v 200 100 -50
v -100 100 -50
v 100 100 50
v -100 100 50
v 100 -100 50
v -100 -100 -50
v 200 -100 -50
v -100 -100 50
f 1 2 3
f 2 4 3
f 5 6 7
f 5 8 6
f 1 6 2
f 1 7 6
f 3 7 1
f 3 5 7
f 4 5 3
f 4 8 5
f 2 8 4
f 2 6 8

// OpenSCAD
    translate([100, 100, -50])
    rotate([90, 0, 0])
    linear_extrude(200) {
        polygon(points=[[0,0],[100,0],[0,100]],convexity=2);
        
        translate([-200, 0, 0]) square([200, 100]);
    }
